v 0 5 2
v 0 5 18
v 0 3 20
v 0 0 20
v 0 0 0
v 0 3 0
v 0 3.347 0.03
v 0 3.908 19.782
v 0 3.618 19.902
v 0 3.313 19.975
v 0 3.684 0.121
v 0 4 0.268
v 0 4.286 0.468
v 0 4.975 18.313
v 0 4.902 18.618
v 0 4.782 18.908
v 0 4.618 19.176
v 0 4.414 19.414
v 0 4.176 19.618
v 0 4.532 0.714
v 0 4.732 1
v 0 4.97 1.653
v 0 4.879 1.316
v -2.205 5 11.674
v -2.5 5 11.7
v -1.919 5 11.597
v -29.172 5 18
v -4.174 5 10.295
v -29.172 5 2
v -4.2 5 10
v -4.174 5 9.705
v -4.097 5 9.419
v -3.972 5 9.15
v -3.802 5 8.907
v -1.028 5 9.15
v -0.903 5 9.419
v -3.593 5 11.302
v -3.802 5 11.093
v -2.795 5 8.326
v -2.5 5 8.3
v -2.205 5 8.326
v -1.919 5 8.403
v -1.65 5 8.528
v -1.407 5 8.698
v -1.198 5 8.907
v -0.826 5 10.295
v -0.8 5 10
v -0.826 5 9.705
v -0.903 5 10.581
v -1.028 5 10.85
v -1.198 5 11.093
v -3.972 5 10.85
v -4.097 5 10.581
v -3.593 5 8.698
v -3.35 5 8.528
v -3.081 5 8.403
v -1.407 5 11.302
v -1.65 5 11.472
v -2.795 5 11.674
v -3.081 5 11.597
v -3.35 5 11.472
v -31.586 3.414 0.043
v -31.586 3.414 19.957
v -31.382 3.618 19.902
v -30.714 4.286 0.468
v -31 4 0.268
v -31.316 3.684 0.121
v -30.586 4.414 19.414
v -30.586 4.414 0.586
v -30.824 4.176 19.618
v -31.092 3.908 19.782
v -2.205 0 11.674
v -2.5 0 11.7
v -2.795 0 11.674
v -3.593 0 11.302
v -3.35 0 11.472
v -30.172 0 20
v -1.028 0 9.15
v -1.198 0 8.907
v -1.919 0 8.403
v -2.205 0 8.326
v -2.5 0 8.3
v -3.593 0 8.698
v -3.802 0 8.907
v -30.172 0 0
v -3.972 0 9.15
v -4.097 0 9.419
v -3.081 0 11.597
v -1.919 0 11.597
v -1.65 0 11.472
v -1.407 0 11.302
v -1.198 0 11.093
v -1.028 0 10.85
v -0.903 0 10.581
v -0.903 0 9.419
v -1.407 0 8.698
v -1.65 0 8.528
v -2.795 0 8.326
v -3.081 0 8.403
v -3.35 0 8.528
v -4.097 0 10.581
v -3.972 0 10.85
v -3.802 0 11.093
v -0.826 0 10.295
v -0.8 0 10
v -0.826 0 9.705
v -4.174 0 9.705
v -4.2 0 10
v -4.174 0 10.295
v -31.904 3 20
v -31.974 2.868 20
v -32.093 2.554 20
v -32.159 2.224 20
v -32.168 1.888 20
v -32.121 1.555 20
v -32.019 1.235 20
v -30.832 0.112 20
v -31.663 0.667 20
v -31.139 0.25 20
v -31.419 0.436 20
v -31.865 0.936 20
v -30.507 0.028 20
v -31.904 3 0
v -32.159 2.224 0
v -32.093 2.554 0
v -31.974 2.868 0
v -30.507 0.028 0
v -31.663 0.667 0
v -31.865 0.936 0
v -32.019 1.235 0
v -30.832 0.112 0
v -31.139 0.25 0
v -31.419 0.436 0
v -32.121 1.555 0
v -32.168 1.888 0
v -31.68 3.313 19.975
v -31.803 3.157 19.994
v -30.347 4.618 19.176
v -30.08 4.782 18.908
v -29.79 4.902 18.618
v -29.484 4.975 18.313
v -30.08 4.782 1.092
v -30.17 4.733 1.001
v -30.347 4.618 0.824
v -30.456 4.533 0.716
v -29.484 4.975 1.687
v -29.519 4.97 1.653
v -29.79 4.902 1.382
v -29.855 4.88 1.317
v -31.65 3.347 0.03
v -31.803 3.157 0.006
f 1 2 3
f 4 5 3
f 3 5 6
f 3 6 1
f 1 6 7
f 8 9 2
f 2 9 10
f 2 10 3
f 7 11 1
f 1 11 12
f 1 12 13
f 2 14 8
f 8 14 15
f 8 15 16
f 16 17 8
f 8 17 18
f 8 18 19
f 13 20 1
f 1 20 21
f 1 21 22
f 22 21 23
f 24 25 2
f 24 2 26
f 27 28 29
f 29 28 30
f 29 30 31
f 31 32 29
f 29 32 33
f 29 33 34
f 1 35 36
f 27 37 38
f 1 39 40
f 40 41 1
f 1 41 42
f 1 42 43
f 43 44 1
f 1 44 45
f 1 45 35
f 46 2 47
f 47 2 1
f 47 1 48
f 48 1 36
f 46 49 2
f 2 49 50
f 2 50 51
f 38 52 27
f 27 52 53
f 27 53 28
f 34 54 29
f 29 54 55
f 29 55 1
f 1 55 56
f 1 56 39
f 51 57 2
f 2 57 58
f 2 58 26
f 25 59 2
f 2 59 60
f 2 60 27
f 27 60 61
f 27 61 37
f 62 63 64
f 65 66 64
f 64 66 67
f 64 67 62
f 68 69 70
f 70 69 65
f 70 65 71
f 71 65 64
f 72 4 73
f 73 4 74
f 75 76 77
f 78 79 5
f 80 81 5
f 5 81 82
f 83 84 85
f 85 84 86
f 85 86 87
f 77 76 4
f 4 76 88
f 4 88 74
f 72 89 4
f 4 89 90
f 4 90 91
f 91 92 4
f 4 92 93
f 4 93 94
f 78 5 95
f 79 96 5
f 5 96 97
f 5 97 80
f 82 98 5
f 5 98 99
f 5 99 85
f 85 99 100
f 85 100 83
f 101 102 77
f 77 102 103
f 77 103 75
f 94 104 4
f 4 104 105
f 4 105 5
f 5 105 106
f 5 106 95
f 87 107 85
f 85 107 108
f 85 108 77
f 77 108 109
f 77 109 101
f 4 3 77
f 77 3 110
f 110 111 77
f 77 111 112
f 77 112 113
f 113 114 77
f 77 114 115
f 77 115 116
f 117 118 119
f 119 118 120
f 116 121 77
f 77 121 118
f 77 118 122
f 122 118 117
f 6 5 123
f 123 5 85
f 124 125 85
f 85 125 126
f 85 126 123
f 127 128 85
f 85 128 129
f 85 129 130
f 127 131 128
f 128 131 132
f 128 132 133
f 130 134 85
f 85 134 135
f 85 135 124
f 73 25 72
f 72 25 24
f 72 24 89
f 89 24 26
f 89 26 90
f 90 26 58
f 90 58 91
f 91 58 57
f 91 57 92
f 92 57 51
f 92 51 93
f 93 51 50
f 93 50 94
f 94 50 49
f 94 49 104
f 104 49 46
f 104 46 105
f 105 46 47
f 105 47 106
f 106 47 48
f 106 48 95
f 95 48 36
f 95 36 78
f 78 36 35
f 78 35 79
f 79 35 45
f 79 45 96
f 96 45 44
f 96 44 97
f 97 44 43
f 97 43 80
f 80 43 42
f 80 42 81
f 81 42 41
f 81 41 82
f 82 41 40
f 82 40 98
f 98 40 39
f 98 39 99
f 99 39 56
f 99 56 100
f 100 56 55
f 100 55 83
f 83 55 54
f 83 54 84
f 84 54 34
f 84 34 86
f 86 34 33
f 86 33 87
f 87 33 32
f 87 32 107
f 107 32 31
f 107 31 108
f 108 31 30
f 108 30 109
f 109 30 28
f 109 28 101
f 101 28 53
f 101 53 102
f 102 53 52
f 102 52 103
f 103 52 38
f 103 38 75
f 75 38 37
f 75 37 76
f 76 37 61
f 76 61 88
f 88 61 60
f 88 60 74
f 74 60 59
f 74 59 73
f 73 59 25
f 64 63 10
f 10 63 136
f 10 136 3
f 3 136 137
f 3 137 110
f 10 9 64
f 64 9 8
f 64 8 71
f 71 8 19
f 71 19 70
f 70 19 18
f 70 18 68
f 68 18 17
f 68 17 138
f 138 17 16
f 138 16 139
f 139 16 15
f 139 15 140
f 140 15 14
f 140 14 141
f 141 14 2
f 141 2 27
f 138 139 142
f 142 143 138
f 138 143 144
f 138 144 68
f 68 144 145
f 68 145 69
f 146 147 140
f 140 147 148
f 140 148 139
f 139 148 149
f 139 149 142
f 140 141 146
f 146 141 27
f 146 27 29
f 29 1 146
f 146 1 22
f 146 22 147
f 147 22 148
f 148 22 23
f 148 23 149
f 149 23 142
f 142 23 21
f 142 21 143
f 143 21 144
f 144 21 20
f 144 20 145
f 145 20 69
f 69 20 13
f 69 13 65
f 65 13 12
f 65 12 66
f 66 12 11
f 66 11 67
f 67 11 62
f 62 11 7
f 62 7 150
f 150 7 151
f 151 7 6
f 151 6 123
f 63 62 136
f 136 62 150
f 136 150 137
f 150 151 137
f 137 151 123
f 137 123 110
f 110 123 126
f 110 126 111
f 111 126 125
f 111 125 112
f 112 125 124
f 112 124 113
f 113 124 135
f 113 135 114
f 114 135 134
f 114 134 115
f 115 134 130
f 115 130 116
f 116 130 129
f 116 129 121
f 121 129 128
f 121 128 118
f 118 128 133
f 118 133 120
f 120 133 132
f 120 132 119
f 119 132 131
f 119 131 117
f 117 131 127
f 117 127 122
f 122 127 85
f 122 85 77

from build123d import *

# Parameters (mm, degrees)
EXTRUDE_1_DEPTH     = 20
SKETCH_2_R          = 1.7
CUT_EXTRUDE_1_DEPTH = 41.620192023
FILLET_1_R          = 2
FILLET_2_R          = 2


with BuildPart() as part:
    # ｽｹｯﾁ1 → ﾎﾞｽ - 押し出し1 (new body)
    with BuildSketch(Plane.XY):
        Polygon((0, 0), (-35, 0), (-30, 5), (0, 5), align=None)
    extrude(amount=EXTRUDE_1_DEPTH)

    # ｽｹｯﾁ2 → ｶｯﾄ - 押し出し1 (cut, through all)
    with BuildSketch(Plane(origin=(0, 5, 0), x_dir=(1, 0, 0), z_dir=(0, 1, 0))):
        with Locations(Location((-2.5, -10, 0), (0, 0, 270))):
            Circle(SKETCH_2_R)
    extrude(amount=-CUT_EXTRUDE_1_DEPTH, mode=Mode.SUBTRACT)

    # ﾌｨﾚｯﾄ1
    fillet_1_edges = [part.edges().sort_by_distance(p)[0] for p in [
        (-15, 5, 0),
        (-30, 5, 10),
        (-15, 5, 20),
    ]]
    fillet(fillet_1_edges, radius=FILLET_1_R)

    # ﾌｨﾚｯﾄ2
    fillet_2_edges = [part.edges().sort_by_distance(p)[0] for p in [
        (-35, 0, 10),
    ]]
    fillet(fillet_2_edges, radius=FILLET_2_R)


solid = part.part
